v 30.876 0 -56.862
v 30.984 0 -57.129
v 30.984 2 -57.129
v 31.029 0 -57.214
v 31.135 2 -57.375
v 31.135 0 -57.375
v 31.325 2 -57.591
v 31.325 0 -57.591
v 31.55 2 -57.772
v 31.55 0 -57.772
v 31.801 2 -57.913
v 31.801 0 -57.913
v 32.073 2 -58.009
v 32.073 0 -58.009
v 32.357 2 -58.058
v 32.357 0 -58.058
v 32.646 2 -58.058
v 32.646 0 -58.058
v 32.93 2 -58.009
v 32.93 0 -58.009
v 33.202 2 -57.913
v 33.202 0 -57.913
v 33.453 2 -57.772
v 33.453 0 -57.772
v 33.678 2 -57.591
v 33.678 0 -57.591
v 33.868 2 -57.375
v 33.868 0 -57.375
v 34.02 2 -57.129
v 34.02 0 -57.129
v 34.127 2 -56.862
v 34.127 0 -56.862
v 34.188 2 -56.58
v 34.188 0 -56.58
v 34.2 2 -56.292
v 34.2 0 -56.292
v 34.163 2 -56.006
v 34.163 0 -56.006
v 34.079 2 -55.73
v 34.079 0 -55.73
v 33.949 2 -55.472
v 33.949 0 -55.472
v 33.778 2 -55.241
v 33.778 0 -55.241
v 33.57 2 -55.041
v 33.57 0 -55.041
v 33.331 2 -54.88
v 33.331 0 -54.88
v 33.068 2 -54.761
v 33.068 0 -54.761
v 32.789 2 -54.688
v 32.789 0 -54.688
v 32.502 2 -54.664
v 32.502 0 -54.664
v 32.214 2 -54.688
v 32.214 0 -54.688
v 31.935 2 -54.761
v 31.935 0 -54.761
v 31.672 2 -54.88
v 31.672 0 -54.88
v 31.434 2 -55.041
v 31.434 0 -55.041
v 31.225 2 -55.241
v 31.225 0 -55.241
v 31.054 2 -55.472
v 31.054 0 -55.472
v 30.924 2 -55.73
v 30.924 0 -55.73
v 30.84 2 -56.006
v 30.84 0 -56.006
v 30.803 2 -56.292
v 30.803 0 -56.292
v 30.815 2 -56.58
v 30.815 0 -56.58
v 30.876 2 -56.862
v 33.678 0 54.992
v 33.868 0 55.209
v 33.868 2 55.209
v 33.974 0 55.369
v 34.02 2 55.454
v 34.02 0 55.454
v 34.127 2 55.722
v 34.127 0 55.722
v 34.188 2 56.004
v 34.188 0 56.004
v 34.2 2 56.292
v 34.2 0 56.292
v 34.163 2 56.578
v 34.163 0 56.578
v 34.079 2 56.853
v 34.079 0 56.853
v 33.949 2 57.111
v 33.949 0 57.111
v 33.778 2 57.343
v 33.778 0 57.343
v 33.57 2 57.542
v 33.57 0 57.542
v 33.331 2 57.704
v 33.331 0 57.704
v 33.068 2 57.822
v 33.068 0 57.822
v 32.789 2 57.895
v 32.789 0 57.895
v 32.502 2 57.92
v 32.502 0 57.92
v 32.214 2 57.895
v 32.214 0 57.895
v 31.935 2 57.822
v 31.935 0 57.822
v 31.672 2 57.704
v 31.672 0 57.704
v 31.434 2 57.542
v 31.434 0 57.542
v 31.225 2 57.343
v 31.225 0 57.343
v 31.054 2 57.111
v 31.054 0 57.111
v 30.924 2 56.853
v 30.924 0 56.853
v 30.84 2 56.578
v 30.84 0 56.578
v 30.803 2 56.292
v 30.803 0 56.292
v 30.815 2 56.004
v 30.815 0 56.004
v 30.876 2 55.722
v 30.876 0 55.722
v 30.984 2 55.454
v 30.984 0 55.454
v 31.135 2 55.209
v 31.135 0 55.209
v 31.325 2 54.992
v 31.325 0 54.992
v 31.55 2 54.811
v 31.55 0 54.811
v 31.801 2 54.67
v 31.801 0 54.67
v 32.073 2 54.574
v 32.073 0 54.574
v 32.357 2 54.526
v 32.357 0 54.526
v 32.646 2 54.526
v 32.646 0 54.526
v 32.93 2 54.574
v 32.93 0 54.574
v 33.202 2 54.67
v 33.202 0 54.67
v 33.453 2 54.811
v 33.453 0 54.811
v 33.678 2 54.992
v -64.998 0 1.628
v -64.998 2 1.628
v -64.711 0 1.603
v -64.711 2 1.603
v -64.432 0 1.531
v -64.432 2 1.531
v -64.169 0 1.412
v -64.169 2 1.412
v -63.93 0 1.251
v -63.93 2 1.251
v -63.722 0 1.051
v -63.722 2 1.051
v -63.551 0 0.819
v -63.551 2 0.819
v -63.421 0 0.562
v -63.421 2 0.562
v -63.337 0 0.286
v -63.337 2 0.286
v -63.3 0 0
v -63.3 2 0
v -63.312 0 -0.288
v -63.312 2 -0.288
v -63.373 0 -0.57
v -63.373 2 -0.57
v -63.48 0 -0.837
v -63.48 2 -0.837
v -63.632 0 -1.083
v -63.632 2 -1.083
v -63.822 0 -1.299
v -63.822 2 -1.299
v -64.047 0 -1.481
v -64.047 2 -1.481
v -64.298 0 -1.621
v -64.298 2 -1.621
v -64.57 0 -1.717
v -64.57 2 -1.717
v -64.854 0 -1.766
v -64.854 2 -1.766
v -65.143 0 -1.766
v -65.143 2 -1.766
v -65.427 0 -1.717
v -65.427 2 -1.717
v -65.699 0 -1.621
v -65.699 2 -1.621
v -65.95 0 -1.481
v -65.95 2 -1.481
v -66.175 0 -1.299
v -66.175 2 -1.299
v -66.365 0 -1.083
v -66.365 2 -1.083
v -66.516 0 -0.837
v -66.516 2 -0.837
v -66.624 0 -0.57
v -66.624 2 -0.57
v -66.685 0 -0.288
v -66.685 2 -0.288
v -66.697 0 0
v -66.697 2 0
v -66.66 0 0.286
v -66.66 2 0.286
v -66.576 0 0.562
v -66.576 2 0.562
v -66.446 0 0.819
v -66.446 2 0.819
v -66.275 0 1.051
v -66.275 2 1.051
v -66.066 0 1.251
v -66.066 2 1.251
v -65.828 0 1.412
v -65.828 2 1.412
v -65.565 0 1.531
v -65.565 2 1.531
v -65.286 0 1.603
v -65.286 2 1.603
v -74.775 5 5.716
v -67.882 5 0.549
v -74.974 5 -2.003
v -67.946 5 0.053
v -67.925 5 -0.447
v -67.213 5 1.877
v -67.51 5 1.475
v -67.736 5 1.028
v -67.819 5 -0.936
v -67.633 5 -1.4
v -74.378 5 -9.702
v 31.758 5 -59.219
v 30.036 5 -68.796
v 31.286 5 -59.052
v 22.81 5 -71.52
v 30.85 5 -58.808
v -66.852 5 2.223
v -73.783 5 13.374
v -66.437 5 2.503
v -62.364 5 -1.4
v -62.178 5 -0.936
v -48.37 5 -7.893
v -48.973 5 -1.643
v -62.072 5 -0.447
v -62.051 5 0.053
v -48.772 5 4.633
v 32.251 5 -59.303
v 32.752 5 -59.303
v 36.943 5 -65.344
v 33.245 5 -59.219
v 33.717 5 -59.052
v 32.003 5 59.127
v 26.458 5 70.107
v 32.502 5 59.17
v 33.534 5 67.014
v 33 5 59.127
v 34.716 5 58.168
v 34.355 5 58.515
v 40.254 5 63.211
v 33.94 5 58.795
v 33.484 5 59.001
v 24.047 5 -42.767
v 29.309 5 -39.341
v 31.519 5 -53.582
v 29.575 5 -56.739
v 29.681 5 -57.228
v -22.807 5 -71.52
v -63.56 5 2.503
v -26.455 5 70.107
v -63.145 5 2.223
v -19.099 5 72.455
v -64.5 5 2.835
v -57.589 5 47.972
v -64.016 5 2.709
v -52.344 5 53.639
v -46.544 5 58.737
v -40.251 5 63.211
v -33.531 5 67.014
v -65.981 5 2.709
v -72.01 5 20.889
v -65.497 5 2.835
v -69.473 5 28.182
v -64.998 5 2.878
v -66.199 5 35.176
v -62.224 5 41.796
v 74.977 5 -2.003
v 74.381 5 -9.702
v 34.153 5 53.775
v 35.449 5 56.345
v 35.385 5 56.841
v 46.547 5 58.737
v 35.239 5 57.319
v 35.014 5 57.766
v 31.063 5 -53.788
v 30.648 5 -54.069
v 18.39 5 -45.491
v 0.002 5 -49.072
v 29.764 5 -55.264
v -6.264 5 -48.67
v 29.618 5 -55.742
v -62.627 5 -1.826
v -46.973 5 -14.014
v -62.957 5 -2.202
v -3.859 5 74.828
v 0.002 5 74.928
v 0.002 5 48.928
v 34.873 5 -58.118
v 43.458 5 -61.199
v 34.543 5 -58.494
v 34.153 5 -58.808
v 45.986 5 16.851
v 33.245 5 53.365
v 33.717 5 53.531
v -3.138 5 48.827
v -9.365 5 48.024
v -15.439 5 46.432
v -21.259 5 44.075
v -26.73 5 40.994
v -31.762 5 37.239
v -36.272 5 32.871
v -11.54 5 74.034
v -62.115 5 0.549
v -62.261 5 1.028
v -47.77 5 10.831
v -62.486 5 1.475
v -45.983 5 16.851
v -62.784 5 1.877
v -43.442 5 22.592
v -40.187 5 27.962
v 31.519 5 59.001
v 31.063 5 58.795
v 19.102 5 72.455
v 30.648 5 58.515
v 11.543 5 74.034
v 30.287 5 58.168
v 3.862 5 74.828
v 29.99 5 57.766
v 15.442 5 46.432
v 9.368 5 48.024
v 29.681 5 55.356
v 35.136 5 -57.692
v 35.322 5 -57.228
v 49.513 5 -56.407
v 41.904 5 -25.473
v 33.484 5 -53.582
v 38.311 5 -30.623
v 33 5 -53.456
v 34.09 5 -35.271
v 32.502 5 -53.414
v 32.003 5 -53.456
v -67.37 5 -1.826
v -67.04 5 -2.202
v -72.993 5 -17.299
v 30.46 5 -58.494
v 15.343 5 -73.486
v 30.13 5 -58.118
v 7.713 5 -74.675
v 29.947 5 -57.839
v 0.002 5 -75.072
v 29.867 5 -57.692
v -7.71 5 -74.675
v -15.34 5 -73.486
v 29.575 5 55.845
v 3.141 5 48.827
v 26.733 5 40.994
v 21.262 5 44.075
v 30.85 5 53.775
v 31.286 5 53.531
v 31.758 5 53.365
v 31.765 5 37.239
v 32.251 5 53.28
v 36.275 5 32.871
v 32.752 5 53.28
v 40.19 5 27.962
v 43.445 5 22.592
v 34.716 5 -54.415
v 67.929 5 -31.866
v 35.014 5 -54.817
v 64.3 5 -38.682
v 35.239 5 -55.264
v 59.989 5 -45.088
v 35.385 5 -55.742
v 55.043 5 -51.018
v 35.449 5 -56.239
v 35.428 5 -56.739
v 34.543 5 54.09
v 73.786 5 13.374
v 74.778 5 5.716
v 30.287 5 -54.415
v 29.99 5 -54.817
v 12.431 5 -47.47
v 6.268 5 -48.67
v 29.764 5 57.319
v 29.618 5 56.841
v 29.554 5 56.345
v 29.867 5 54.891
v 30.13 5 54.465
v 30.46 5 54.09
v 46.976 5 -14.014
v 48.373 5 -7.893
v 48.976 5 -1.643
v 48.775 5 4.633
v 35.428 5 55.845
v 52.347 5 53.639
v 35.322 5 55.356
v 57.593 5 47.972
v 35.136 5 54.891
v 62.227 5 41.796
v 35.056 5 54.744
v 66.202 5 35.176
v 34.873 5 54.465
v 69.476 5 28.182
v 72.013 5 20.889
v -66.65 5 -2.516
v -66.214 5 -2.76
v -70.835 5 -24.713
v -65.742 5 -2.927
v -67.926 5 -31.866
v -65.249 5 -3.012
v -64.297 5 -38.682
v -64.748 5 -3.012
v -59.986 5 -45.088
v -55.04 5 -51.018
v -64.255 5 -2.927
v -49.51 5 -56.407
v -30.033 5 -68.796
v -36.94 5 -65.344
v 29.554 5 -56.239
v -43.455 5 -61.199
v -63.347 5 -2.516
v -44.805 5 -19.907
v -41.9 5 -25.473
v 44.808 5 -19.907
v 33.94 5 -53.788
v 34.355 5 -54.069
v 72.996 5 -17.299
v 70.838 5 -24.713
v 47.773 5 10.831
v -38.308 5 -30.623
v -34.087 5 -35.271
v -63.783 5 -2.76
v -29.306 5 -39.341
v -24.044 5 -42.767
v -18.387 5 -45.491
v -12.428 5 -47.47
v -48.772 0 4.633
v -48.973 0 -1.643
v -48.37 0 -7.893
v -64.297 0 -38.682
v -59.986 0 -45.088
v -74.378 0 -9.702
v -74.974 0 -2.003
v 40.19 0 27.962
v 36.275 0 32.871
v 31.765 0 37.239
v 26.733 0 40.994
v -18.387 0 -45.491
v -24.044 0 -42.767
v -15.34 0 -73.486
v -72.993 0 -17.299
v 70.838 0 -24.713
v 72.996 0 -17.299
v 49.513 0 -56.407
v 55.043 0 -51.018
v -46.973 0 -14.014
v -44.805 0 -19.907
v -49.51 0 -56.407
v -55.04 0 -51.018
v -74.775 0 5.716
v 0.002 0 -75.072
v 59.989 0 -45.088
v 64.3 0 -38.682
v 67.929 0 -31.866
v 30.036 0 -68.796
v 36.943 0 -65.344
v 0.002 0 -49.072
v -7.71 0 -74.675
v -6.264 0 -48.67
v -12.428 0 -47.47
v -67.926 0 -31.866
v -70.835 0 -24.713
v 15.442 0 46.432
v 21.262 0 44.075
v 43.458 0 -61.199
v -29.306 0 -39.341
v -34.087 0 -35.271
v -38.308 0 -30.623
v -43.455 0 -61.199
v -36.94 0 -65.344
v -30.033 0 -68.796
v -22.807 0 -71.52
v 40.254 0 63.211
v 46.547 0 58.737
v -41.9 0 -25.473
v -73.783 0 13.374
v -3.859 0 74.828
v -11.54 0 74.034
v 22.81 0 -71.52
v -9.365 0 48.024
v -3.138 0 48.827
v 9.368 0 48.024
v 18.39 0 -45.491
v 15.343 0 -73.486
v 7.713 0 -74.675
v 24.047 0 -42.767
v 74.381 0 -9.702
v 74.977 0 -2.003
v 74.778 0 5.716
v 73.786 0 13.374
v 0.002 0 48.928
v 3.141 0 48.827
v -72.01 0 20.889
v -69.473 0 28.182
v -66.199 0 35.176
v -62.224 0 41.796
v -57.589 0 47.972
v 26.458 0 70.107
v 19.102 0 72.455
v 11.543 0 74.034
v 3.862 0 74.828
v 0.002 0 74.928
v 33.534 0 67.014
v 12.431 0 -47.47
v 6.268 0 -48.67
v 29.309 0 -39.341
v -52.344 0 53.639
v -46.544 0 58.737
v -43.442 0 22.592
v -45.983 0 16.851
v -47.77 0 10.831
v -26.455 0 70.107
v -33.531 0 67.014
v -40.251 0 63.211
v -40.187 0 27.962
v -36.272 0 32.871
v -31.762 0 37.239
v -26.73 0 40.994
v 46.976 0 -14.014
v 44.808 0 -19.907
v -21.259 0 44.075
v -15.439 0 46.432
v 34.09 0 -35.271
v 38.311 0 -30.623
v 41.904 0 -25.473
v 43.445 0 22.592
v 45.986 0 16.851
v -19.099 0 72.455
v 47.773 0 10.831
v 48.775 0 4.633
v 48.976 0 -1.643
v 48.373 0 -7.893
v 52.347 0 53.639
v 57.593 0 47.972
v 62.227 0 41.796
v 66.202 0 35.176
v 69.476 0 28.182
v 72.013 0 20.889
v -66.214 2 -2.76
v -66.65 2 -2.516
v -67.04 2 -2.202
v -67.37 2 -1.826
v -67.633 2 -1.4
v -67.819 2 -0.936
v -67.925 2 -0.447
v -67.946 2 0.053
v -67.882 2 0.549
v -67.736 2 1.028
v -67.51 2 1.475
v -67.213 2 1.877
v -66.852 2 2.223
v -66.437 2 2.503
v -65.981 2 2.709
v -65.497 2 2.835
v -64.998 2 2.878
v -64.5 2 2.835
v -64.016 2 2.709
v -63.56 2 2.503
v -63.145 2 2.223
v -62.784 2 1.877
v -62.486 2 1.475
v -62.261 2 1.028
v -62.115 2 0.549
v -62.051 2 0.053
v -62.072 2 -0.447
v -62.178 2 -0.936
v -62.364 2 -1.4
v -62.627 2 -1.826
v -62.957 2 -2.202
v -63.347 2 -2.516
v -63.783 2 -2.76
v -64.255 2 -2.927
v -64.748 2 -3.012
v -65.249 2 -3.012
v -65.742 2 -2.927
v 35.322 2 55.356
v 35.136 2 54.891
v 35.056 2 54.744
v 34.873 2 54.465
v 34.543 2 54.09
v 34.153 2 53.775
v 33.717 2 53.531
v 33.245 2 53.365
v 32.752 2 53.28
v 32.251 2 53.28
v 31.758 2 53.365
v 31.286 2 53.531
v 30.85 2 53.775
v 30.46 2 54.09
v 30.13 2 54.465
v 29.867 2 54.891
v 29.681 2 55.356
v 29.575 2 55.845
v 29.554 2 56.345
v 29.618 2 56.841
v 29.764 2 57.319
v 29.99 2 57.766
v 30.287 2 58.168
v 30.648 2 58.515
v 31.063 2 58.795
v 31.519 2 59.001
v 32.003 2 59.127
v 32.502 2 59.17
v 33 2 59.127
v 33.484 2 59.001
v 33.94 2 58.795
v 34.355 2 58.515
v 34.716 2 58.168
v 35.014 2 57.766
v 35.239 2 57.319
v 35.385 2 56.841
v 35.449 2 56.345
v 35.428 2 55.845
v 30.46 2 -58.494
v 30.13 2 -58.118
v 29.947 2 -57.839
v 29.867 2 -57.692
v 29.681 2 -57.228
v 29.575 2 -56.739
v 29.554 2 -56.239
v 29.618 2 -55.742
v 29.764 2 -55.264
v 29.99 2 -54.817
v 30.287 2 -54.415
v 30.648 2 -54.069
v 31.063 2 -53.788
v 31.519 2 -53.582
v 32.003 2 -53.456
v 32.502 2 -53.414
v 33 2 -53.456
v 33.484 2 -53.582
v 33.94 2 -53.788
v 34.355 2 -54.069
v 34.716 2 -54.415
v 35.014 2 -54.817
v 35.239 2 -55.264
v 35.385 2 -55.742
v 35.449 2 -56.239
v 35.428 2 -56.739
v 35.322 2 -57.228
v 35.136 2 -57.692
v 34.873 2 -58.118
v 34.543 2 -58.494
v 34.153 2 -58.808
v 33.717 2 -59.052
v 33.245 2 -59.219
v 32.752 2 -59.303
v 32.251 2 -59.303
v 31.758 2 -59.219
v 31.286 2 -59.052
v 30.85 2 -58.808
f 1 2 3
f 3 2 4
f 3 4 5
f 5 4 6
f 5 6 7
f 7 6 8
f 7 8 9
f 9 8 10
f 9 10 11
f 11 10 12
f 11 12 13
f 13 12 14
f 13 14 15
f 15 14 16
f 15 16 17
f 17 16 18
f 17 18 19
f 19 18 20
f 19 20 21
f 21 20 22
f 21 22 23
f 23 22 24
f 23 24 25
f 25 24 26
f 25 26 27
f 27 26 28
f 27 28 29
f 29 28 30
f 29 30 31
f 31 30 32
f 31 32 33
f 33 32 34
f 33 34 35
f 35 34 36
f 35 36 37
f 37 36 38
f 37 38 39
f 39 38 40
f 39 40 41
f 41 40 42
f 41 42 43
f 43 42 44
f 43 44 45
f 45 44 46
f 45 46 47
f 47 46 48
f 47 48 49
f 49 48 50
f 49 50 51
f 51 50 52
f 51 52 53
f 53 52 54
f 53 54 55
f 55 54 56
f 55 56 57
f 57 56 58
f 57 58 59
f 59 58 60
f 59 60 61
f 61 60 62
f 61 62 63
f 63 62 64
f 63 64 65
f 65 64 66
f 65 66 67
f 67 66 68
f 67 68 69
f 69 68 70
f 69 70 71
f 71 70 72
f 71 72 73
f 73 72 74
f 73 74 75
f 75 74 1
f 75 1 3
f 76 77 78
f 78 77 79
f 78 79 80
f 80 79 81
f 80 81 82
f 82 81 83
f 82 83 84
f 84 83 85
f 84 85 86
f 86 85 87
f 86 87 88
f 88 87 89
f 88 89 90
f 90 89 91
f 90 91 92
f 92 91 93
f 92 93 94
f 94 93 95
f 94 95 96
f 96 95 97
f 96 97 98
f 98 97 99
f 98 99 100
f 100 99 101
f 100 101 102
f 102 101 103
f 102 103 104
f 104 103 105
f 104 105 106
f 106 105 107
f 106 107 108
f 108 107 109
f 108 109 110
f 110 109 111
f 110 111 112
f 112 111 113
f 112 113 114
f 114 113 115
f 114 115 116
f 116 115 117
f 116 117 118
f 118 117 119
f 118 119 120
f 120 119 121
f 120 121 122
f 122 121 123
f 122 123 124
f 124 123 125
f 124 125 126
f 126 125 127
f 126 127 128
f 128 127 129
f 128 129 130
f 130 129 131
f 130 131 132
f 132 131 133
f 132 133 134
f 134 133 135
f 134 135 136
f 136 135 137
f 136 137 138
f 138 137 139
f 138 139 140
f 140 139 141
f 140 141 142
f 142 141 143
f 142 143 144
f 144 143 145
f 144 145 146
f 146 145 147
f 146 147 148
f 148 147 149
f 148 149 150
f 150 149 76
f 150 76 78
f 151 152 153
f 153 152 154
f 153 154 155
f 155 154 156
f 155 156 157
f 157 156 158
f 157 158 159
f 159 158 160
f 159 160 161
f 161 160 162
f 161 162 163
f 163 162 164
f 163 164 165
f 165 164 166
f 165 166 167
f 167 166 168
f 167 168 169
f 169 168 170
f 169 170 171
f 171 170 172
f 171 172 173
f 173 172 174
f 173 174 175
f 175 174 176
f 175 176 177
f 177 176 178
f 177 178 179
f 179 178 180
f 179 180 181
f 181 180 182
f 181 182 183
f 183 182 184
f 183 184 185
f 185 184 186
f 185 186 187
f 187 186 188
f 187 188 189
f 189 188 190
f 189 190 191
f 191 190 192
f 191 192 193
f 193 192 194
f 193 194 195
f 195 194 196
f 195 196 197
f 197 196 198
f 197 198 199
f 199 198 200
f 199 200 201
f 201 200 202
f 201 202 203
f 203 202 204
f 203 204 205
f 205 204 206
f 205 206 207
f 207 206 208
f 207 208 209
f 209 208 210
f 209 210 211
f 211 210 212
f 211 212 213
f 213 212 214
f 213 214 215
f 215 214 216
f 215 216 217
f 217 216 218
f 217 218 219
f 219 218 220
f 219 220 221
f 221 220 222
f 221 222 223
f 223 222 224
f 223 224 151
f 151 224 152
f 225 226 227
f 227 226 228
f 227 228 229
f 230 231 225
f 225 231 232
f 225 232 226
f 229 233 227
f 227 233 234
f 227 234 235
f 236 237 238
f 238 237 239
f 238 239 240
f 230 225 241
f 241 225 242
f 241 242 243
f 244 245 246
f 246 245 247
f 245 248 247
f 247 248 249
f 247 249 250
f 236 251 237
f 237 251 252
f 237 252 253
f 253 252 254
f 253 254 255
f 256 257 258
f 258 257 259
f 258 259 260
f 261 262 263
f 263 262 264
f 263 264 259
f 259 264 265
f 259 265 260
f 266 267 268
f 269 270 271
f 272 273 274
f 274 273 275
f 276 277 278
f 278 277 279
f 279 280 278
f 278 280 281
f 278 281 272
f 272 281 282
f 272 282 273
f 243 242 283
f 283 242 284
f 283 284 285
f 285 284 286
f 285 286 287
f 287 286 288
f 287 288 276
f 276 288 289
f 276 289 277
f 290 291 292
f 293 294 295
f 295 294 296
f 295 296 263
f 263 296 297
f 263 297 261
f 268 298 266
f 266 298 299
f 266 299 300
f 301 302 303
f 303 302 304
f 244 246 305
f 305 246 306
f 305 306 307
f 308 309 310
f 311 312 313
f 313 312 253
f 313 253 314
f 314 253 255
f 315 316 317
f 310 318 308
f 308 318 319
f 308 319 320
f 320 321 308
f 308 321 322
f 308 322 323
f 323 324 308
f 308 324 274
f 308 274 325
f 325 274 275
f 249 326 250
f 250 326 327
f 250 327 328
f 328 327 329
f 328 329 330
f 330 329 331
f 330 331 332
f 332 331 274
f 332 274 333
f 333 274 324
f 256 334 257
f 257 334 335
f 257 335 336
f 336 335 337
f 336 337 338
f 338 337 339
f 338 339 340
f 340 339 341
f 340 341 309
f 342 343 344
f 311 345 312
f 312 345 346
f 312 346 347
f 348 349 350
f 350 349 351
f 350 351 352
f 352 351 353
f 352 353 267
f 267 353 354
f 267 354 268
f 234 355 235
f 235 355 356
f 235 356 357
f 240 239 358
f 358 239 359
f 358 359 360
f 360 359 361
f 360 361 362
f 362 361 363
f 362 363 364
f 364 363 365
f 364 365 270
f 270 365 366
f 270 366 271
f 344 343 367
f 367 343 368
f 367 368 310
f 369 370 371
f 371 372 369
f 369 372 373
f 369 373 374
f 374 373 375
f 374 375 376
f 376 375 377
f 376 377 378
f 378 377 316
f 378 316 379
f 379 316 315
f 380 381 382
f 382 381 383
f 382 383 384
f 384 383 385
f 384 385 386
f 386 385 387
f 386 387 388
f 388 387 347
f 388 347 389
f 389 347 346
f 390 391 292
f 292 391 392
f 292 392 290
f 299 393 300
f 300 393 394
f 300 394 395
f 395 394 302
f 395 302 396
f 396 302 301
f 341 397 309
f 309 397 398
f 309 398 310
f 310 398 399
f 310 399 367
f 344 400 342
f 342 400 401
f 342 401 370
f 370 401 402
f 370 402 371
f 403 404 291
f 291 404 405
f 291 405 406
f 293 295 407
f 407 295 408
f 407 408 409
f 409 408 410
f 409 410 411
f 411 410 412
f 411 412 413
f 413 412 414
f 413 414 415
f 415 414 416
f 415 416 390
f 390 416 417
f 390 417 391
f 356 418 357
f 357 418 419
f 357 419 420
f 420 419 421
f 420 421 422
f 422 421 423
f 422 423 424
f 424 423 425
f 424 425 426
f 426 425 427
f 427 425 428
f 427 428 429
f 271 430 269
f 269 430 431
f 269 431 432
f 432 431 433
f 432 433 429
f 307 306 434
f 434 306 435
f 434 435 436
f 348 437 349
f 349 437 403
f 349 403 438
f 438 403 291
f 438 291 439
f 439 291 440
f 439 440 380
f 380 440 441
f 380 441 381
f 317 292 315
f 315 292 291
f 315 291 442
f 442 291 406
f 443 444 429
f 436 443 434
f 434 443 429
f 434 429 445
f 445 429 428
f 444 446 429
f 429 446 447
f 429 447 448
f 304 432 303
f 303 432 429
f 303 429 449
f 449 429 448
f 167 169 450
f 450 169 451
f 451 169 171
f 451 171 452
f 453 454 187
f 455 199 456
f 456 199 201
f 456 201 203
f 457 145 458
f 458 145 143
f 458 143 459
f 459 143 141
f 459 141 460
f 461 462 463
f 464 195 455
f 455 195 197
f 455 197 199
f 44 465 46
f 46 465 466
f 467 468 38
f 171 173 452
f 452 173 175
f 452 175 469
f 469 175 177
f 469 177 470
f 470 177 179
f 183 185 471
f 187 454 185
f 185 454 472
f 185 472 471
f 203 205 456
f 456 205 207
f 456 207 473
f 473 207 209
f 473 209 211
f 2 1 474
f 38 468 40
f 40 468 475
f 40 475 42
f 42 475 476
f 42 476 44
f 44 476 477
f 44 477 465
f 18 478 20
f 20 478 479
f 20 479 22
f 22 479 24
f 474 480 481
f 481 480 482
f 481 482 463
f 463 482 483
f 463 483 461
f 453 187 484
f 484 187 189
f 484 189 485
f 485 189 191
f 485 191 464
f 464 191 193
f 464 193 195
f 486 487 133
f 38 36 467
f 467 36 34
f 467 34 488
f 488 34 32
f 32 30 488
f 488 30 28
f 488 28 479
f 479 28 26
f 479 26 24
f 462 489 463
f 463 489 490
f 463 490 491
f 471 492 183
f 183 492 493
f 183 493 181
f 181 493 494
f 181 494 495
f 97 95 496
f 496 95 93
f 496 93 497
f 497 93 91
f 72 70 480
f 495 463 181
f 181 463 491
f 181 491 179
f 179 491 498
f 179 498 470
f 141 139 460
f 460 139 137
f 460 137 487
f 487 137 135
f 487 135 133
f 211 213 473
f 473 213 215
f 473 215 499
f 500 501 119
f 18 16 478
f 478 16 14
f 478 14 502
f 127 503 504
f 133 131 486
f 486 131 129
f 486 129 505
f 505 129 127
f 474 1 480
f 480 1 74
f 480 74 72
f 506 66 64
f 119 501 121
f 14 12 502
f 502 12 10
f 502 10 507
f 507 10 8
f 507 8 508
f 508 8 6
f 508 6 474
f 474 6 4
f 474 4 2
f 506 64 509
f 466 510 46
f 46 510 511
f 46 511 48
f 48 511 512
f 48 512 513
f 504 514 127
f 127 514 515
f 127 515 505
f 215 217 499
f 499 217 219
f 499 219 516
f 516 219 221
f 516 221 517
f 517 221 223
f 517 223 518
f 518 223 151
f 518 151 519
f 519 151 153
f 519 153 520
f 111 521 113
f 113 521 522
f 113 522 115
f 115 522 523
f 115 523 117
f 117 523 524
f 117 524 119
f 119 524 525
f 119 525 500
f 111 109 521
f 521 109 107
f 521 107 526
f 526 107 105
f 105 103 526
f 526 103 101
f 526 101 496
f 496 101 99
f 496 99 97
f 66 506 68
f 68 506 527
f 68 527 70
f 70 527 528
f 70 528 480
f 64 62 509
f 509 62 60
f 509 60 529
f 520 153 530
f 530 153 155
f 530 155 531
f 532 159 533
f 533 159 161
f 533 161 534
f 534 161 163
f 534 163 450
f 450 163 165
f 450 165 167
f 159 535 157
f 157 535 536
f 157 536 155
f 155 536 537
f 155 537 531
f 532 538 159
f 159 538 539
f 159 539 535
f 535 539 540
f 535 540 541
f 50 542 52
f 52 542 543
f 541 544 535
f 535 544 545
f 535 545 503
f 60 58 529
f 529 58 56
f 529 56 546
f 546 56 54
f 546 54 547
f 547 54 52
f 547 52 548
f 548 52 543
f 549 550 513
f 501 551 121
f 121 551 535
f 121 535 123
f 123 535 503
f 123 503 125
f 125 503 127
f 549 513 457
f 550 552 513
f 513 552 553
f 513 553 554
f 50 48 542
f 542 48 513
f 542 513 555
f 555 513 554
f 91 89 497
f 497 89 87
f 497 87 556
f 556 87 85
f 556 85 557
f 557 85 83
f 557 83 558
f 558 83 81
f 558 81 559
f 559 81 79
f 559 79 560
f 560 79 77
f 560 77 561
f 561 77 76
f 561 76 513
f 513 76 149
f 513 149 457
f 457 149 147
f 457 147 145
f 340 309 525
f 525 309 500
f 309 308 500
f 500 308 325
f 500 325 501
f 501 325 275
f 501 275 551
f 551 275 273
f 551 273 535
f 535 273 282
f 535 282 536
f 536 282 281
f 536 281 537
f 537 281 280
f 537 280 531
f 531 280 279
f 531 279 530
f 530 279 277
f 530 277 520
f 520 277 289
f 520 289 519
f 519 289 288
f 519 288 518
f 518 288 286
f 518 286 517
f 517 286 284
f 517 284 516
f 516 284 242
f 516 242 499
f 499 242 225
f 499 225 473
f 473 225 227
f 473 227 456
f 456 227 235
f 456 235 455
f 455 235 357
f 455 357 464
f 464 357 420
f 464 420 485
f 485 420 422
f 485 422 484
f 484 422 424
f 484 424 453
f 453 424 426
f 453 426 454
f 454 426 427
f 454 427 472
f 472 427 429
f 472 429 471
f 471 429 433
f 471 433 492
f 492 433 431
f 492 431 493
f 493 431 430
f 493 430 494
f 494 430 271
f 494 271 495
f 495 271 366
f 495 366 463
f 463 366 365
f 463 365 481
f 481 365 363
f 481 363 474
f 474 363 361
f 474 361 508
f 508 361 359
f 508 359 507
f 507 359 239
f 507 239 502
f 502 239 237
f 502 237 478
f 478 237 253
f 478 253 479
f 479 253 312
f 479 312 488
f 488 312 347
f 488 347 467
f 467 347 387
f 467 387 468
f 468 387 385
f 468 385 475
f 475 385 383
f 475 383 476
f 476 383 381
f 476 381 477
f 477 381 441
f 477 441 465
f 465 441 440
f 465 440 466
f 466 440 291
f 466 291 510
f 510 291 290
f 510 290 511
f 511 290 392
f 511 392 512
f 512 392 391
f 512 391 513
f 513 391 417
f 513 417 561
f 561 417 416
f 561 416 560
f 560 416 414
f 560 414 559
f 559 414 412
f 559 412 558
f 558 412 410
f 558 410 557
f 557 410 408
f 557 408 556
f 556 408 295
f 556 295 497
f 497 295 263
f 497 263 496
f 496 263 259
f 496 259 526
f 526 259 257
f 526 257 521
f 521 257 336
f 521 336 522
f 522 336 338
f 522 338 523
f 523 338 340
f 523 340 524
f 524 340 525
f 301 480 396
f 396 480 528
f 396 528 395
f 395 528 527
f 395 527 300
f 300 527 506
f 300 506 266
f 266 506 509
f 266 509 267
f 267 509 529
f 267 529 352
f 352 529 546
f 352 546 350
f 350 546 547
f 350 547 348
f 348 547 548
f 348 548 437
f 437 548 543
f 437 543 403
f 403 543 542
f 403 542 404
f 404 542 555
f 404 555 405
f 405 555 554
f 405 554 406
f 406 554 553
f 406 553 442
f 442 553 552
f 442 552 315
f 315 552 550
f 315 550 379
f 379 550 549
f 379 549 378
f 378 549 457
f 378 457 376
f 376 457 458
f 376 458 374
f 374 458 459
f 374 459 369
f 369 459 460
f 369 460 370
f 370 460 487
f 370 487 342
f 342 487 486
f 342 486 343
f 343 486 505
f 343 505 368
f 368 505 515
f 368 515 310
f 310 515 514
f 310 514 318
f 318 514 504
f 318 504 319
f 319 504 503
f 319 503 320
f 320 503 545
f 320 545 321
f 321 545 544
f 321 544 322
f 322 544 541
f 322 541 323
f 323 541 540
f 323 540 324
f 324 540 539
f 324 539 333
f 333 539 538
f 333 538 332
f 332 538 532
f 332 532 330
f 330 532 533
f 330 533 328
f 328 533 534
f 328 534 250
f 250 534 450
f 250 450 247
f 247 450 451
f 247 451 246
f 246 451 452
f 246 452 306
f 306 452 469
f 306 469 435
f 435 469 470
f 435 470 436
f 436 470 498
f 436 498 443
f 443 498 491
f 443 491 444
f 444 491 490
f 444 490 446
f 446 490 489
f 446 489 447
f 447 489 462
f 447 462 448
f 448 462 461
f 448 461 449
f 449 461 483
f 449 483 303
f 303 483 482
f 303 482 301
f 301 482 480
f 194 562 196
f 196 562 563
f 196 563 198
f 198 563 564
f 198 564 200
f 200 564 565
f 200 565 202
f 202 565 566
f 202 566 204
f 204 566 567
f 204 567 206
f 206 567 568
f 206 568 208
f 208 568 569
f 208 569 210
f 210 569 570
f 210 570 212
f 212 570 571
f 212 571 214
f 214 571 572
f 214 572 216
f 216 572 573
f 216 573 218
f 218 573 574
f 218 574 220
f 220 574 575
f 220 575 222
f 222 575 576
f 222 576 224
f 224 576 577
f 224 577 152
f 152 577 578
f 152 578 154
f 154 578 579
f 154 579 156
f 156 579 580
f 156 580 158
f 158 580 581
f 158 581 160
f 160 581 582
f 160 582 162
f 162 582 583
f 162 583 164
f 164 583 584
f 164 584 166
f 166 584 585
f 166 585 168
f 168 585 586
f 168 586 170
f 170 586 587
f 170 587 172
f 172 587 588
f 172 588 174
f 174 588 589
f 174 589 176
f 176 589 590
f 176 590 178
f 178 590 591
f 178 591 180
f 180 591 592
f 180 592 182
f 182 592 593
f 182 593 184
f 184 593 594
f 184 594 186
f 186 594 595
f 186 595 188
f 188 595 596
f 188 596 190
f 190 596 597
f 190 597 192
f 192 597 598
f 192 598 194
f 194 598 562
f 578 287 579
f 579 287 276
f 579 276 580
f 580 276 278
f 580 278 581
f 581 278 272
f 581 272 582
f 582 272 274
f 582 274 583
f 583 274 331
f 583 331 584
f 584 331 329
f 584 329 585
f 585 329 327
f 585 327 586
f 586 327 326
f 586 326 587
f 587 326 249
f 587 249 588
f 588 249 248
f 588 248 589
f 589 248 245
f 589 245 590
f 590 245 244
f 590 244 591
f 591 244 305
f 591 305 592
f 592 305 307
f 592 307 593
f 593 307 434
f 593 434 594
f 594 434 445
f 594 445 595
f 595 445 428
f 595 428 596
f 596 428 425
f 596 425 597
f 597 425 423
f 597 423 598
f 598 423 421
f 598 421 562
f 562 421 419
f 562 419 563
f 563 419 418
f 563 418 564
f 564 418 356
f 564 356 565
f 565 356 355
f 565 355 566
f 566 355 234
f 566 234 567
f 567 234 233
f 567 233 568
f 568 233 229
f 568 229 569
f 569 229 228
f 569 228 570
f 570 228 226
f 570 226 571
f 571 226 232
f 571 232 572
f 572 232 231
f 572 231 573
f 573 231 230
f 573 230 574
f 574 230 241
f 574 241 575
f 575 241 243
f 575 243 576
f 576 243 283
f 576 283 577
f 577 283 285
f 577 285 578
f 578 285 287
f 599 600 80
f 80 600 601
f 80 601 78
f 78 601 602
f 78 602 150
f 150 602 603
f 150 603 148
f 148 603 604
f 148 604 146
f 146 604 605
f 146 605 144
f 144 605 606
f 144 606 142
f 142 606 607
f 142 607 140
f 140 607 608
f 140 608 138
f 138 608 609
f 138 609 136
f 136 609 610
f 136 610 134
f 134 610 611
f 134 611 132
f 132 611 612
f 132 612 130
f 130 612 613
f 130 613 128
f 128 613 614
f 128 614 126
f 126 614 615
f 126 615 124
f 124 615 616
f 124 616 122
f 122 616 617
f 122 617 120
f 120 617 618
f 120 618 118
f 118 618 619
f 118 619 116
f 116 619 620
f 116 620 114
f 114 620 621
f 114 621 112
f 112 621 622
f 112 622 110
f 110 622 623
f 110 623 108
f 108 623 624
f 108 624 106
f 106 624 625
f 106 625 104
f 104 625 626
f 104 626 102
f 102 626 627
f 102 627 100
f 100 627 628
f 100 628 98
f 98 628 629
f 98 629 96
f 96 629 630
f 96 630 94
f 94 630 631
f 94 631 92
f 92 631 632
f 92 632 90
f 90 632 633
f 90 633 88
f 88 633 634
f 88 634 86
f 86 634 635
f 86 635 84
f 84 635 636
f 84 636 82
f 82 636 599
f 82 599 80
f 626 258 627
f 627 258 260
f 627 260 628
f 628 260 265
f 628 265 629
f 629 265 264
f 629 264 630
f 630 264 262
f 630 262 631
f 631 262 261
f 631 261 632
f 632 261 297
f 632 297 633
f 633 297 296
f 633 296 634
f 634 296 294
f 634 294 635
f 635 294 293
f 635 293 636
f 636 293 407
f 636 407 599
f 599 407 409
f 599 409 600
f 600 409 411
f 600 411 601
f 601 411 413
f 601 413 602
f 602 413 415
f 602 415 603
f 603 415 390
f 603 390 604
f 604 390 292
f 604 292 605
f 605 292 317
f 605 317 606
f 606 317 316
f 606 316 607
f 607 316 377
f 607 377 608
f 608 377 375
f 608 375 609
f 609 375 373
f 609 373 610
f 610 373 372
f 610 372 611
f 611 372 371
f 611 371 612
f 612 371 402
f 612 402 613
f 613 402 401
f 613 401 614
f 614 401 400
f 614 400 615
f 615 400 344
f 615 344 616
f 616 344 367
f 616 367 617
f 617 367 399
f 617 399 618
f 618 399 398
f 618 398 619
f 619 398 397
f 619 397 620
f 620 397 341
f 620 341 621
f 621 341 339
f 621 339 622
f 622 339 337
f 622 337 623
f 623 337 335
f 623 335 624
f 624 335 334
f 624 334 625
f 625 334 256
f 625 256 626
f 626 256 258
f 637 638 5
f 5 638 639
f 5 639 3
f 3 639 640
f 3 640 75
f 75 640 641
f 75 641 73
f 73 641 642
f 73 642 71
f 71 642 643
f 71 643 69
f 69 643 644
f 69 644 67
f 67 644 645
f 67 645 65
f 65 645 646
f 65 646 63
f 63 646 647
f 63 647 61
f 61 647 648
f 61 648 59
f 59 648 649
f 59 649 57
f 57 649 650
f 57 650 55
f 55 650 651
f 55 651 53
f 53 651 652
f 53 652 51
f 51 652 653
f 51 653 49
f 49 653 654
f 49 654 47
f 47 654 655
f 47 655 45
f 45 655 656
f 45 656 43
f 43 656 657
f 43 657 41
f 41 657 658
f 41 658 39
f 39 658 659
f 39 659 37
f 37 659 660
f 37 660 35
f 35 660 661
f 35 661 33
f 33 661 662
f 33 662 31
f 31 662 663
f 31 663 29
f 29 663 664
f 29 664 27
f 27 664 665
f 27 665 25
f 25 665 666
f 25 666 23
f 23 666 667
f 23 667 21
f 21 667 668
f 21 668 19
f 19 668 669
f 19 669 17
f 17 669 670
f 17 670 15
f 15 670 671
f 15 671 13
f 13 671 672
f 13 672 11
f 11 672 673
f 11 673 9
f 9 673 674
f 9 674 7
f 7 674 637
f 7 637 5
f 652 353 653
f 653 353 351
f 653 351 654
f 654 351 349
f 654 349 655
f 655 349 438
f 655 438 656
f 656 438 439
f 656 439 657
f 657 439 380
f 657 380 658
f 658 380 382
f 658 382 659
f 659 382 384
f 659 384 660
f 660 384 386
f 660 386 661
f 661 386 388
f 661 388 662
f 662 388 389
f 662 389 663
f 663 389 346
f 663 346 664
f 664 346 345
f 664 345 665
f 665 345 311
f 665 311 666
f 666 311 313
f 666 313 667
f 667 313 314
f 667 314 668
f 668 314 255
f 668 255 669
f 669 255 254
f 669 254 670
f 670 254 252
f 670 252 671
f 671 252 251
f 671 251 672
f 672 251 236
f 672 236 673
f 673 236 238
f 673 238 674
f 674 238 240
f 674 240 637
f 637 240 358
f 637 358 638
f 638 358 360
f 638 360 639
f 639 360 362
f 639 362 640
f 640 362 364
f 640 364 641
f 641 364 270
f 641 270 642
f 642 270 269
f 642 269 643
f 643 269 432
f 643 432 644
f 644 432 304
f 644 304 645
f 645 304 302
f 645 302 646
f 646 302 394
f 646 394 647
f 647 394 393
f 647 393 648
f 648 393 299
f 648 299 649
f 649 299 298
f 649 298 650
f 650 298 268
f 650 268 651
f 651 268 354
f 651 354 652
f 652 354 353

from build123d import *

# Parameters (mm, degrees)
CROQUIS1_R              = 75
CROQUIS1_R_2            = 49
SALIENTE_EXTRUIR1_DEPTH = 5
CROQUIS2_R              = 1.7
CORTAR_EXTRUIR1_DEPTH   = 5
CROQUIS3_R              = 2.95
CORTAR_EXTRUIR2_DEPTH   = 3
MATRIZC1_COUNT          = 3


with BuildPart() as part:
    # Croquis1 → Saliente-Extruir1 (new body)
    with BuildSketch(Plane(origin=(0, 0, 0), x_dir=(1, 0, 0), z_dir=(0, 1, 0))):
        Circle(CROQUIS1_R)
        Circle(CROQUIS1_R_2, mode=Mode.SUBTRACT)
    extrude(amount=SALIENTE_EXTRUIR1_DEPTH)

    # Croquis2 → Cortar-Extruir1 (cut)
    with BuildSketch(Plane(origin=(0, 5, 0), x_dir=(1, 0, 0), z_dir=(0, 1, 0))):
        with Locations((-65, 0)):
            Circle(CROQUIS2_R)
    cortar_extruir1 = extrude(amount=-CORTAR_EXTRUIR1_DEPTH, mode=Mode.SUBTRACT)

    # Croquis3 → Cortar-Extruir2 (cut)
    with BuildSketch(Plane(origin=(0, 5, 0), x_dir=(1, 0, 0), z_dir=(0, 1, 0))):
        with Locations((-65, 0)):
            Circle(CROQUIS3_R)
    cortar_extruir2 = extrude(amount=-CORTAR_EXTRUIR2_DEPTH, mode=Mode.SUBTRACT)

    # MatrizC1: Cortar-Extruir1, Cortar-Extruir2 ×3 about axis
    matrizc1_axis = Axis((0, 0, 0), (0, 1, 0))
    for i in range(1, MATRIZC1_COUNT):
        add(cortar_extruir1.rotate(matrizc1_axis, i * 360 / MATRIZC1_COUNT), mode=Mode.SUBTRACT)
        add(cortar_extruir2.rotate(matrizc1_axis, i * 360 / MATRIZC1_COUNT), mode=Mode.SUBTRACT)


solid = part.part
